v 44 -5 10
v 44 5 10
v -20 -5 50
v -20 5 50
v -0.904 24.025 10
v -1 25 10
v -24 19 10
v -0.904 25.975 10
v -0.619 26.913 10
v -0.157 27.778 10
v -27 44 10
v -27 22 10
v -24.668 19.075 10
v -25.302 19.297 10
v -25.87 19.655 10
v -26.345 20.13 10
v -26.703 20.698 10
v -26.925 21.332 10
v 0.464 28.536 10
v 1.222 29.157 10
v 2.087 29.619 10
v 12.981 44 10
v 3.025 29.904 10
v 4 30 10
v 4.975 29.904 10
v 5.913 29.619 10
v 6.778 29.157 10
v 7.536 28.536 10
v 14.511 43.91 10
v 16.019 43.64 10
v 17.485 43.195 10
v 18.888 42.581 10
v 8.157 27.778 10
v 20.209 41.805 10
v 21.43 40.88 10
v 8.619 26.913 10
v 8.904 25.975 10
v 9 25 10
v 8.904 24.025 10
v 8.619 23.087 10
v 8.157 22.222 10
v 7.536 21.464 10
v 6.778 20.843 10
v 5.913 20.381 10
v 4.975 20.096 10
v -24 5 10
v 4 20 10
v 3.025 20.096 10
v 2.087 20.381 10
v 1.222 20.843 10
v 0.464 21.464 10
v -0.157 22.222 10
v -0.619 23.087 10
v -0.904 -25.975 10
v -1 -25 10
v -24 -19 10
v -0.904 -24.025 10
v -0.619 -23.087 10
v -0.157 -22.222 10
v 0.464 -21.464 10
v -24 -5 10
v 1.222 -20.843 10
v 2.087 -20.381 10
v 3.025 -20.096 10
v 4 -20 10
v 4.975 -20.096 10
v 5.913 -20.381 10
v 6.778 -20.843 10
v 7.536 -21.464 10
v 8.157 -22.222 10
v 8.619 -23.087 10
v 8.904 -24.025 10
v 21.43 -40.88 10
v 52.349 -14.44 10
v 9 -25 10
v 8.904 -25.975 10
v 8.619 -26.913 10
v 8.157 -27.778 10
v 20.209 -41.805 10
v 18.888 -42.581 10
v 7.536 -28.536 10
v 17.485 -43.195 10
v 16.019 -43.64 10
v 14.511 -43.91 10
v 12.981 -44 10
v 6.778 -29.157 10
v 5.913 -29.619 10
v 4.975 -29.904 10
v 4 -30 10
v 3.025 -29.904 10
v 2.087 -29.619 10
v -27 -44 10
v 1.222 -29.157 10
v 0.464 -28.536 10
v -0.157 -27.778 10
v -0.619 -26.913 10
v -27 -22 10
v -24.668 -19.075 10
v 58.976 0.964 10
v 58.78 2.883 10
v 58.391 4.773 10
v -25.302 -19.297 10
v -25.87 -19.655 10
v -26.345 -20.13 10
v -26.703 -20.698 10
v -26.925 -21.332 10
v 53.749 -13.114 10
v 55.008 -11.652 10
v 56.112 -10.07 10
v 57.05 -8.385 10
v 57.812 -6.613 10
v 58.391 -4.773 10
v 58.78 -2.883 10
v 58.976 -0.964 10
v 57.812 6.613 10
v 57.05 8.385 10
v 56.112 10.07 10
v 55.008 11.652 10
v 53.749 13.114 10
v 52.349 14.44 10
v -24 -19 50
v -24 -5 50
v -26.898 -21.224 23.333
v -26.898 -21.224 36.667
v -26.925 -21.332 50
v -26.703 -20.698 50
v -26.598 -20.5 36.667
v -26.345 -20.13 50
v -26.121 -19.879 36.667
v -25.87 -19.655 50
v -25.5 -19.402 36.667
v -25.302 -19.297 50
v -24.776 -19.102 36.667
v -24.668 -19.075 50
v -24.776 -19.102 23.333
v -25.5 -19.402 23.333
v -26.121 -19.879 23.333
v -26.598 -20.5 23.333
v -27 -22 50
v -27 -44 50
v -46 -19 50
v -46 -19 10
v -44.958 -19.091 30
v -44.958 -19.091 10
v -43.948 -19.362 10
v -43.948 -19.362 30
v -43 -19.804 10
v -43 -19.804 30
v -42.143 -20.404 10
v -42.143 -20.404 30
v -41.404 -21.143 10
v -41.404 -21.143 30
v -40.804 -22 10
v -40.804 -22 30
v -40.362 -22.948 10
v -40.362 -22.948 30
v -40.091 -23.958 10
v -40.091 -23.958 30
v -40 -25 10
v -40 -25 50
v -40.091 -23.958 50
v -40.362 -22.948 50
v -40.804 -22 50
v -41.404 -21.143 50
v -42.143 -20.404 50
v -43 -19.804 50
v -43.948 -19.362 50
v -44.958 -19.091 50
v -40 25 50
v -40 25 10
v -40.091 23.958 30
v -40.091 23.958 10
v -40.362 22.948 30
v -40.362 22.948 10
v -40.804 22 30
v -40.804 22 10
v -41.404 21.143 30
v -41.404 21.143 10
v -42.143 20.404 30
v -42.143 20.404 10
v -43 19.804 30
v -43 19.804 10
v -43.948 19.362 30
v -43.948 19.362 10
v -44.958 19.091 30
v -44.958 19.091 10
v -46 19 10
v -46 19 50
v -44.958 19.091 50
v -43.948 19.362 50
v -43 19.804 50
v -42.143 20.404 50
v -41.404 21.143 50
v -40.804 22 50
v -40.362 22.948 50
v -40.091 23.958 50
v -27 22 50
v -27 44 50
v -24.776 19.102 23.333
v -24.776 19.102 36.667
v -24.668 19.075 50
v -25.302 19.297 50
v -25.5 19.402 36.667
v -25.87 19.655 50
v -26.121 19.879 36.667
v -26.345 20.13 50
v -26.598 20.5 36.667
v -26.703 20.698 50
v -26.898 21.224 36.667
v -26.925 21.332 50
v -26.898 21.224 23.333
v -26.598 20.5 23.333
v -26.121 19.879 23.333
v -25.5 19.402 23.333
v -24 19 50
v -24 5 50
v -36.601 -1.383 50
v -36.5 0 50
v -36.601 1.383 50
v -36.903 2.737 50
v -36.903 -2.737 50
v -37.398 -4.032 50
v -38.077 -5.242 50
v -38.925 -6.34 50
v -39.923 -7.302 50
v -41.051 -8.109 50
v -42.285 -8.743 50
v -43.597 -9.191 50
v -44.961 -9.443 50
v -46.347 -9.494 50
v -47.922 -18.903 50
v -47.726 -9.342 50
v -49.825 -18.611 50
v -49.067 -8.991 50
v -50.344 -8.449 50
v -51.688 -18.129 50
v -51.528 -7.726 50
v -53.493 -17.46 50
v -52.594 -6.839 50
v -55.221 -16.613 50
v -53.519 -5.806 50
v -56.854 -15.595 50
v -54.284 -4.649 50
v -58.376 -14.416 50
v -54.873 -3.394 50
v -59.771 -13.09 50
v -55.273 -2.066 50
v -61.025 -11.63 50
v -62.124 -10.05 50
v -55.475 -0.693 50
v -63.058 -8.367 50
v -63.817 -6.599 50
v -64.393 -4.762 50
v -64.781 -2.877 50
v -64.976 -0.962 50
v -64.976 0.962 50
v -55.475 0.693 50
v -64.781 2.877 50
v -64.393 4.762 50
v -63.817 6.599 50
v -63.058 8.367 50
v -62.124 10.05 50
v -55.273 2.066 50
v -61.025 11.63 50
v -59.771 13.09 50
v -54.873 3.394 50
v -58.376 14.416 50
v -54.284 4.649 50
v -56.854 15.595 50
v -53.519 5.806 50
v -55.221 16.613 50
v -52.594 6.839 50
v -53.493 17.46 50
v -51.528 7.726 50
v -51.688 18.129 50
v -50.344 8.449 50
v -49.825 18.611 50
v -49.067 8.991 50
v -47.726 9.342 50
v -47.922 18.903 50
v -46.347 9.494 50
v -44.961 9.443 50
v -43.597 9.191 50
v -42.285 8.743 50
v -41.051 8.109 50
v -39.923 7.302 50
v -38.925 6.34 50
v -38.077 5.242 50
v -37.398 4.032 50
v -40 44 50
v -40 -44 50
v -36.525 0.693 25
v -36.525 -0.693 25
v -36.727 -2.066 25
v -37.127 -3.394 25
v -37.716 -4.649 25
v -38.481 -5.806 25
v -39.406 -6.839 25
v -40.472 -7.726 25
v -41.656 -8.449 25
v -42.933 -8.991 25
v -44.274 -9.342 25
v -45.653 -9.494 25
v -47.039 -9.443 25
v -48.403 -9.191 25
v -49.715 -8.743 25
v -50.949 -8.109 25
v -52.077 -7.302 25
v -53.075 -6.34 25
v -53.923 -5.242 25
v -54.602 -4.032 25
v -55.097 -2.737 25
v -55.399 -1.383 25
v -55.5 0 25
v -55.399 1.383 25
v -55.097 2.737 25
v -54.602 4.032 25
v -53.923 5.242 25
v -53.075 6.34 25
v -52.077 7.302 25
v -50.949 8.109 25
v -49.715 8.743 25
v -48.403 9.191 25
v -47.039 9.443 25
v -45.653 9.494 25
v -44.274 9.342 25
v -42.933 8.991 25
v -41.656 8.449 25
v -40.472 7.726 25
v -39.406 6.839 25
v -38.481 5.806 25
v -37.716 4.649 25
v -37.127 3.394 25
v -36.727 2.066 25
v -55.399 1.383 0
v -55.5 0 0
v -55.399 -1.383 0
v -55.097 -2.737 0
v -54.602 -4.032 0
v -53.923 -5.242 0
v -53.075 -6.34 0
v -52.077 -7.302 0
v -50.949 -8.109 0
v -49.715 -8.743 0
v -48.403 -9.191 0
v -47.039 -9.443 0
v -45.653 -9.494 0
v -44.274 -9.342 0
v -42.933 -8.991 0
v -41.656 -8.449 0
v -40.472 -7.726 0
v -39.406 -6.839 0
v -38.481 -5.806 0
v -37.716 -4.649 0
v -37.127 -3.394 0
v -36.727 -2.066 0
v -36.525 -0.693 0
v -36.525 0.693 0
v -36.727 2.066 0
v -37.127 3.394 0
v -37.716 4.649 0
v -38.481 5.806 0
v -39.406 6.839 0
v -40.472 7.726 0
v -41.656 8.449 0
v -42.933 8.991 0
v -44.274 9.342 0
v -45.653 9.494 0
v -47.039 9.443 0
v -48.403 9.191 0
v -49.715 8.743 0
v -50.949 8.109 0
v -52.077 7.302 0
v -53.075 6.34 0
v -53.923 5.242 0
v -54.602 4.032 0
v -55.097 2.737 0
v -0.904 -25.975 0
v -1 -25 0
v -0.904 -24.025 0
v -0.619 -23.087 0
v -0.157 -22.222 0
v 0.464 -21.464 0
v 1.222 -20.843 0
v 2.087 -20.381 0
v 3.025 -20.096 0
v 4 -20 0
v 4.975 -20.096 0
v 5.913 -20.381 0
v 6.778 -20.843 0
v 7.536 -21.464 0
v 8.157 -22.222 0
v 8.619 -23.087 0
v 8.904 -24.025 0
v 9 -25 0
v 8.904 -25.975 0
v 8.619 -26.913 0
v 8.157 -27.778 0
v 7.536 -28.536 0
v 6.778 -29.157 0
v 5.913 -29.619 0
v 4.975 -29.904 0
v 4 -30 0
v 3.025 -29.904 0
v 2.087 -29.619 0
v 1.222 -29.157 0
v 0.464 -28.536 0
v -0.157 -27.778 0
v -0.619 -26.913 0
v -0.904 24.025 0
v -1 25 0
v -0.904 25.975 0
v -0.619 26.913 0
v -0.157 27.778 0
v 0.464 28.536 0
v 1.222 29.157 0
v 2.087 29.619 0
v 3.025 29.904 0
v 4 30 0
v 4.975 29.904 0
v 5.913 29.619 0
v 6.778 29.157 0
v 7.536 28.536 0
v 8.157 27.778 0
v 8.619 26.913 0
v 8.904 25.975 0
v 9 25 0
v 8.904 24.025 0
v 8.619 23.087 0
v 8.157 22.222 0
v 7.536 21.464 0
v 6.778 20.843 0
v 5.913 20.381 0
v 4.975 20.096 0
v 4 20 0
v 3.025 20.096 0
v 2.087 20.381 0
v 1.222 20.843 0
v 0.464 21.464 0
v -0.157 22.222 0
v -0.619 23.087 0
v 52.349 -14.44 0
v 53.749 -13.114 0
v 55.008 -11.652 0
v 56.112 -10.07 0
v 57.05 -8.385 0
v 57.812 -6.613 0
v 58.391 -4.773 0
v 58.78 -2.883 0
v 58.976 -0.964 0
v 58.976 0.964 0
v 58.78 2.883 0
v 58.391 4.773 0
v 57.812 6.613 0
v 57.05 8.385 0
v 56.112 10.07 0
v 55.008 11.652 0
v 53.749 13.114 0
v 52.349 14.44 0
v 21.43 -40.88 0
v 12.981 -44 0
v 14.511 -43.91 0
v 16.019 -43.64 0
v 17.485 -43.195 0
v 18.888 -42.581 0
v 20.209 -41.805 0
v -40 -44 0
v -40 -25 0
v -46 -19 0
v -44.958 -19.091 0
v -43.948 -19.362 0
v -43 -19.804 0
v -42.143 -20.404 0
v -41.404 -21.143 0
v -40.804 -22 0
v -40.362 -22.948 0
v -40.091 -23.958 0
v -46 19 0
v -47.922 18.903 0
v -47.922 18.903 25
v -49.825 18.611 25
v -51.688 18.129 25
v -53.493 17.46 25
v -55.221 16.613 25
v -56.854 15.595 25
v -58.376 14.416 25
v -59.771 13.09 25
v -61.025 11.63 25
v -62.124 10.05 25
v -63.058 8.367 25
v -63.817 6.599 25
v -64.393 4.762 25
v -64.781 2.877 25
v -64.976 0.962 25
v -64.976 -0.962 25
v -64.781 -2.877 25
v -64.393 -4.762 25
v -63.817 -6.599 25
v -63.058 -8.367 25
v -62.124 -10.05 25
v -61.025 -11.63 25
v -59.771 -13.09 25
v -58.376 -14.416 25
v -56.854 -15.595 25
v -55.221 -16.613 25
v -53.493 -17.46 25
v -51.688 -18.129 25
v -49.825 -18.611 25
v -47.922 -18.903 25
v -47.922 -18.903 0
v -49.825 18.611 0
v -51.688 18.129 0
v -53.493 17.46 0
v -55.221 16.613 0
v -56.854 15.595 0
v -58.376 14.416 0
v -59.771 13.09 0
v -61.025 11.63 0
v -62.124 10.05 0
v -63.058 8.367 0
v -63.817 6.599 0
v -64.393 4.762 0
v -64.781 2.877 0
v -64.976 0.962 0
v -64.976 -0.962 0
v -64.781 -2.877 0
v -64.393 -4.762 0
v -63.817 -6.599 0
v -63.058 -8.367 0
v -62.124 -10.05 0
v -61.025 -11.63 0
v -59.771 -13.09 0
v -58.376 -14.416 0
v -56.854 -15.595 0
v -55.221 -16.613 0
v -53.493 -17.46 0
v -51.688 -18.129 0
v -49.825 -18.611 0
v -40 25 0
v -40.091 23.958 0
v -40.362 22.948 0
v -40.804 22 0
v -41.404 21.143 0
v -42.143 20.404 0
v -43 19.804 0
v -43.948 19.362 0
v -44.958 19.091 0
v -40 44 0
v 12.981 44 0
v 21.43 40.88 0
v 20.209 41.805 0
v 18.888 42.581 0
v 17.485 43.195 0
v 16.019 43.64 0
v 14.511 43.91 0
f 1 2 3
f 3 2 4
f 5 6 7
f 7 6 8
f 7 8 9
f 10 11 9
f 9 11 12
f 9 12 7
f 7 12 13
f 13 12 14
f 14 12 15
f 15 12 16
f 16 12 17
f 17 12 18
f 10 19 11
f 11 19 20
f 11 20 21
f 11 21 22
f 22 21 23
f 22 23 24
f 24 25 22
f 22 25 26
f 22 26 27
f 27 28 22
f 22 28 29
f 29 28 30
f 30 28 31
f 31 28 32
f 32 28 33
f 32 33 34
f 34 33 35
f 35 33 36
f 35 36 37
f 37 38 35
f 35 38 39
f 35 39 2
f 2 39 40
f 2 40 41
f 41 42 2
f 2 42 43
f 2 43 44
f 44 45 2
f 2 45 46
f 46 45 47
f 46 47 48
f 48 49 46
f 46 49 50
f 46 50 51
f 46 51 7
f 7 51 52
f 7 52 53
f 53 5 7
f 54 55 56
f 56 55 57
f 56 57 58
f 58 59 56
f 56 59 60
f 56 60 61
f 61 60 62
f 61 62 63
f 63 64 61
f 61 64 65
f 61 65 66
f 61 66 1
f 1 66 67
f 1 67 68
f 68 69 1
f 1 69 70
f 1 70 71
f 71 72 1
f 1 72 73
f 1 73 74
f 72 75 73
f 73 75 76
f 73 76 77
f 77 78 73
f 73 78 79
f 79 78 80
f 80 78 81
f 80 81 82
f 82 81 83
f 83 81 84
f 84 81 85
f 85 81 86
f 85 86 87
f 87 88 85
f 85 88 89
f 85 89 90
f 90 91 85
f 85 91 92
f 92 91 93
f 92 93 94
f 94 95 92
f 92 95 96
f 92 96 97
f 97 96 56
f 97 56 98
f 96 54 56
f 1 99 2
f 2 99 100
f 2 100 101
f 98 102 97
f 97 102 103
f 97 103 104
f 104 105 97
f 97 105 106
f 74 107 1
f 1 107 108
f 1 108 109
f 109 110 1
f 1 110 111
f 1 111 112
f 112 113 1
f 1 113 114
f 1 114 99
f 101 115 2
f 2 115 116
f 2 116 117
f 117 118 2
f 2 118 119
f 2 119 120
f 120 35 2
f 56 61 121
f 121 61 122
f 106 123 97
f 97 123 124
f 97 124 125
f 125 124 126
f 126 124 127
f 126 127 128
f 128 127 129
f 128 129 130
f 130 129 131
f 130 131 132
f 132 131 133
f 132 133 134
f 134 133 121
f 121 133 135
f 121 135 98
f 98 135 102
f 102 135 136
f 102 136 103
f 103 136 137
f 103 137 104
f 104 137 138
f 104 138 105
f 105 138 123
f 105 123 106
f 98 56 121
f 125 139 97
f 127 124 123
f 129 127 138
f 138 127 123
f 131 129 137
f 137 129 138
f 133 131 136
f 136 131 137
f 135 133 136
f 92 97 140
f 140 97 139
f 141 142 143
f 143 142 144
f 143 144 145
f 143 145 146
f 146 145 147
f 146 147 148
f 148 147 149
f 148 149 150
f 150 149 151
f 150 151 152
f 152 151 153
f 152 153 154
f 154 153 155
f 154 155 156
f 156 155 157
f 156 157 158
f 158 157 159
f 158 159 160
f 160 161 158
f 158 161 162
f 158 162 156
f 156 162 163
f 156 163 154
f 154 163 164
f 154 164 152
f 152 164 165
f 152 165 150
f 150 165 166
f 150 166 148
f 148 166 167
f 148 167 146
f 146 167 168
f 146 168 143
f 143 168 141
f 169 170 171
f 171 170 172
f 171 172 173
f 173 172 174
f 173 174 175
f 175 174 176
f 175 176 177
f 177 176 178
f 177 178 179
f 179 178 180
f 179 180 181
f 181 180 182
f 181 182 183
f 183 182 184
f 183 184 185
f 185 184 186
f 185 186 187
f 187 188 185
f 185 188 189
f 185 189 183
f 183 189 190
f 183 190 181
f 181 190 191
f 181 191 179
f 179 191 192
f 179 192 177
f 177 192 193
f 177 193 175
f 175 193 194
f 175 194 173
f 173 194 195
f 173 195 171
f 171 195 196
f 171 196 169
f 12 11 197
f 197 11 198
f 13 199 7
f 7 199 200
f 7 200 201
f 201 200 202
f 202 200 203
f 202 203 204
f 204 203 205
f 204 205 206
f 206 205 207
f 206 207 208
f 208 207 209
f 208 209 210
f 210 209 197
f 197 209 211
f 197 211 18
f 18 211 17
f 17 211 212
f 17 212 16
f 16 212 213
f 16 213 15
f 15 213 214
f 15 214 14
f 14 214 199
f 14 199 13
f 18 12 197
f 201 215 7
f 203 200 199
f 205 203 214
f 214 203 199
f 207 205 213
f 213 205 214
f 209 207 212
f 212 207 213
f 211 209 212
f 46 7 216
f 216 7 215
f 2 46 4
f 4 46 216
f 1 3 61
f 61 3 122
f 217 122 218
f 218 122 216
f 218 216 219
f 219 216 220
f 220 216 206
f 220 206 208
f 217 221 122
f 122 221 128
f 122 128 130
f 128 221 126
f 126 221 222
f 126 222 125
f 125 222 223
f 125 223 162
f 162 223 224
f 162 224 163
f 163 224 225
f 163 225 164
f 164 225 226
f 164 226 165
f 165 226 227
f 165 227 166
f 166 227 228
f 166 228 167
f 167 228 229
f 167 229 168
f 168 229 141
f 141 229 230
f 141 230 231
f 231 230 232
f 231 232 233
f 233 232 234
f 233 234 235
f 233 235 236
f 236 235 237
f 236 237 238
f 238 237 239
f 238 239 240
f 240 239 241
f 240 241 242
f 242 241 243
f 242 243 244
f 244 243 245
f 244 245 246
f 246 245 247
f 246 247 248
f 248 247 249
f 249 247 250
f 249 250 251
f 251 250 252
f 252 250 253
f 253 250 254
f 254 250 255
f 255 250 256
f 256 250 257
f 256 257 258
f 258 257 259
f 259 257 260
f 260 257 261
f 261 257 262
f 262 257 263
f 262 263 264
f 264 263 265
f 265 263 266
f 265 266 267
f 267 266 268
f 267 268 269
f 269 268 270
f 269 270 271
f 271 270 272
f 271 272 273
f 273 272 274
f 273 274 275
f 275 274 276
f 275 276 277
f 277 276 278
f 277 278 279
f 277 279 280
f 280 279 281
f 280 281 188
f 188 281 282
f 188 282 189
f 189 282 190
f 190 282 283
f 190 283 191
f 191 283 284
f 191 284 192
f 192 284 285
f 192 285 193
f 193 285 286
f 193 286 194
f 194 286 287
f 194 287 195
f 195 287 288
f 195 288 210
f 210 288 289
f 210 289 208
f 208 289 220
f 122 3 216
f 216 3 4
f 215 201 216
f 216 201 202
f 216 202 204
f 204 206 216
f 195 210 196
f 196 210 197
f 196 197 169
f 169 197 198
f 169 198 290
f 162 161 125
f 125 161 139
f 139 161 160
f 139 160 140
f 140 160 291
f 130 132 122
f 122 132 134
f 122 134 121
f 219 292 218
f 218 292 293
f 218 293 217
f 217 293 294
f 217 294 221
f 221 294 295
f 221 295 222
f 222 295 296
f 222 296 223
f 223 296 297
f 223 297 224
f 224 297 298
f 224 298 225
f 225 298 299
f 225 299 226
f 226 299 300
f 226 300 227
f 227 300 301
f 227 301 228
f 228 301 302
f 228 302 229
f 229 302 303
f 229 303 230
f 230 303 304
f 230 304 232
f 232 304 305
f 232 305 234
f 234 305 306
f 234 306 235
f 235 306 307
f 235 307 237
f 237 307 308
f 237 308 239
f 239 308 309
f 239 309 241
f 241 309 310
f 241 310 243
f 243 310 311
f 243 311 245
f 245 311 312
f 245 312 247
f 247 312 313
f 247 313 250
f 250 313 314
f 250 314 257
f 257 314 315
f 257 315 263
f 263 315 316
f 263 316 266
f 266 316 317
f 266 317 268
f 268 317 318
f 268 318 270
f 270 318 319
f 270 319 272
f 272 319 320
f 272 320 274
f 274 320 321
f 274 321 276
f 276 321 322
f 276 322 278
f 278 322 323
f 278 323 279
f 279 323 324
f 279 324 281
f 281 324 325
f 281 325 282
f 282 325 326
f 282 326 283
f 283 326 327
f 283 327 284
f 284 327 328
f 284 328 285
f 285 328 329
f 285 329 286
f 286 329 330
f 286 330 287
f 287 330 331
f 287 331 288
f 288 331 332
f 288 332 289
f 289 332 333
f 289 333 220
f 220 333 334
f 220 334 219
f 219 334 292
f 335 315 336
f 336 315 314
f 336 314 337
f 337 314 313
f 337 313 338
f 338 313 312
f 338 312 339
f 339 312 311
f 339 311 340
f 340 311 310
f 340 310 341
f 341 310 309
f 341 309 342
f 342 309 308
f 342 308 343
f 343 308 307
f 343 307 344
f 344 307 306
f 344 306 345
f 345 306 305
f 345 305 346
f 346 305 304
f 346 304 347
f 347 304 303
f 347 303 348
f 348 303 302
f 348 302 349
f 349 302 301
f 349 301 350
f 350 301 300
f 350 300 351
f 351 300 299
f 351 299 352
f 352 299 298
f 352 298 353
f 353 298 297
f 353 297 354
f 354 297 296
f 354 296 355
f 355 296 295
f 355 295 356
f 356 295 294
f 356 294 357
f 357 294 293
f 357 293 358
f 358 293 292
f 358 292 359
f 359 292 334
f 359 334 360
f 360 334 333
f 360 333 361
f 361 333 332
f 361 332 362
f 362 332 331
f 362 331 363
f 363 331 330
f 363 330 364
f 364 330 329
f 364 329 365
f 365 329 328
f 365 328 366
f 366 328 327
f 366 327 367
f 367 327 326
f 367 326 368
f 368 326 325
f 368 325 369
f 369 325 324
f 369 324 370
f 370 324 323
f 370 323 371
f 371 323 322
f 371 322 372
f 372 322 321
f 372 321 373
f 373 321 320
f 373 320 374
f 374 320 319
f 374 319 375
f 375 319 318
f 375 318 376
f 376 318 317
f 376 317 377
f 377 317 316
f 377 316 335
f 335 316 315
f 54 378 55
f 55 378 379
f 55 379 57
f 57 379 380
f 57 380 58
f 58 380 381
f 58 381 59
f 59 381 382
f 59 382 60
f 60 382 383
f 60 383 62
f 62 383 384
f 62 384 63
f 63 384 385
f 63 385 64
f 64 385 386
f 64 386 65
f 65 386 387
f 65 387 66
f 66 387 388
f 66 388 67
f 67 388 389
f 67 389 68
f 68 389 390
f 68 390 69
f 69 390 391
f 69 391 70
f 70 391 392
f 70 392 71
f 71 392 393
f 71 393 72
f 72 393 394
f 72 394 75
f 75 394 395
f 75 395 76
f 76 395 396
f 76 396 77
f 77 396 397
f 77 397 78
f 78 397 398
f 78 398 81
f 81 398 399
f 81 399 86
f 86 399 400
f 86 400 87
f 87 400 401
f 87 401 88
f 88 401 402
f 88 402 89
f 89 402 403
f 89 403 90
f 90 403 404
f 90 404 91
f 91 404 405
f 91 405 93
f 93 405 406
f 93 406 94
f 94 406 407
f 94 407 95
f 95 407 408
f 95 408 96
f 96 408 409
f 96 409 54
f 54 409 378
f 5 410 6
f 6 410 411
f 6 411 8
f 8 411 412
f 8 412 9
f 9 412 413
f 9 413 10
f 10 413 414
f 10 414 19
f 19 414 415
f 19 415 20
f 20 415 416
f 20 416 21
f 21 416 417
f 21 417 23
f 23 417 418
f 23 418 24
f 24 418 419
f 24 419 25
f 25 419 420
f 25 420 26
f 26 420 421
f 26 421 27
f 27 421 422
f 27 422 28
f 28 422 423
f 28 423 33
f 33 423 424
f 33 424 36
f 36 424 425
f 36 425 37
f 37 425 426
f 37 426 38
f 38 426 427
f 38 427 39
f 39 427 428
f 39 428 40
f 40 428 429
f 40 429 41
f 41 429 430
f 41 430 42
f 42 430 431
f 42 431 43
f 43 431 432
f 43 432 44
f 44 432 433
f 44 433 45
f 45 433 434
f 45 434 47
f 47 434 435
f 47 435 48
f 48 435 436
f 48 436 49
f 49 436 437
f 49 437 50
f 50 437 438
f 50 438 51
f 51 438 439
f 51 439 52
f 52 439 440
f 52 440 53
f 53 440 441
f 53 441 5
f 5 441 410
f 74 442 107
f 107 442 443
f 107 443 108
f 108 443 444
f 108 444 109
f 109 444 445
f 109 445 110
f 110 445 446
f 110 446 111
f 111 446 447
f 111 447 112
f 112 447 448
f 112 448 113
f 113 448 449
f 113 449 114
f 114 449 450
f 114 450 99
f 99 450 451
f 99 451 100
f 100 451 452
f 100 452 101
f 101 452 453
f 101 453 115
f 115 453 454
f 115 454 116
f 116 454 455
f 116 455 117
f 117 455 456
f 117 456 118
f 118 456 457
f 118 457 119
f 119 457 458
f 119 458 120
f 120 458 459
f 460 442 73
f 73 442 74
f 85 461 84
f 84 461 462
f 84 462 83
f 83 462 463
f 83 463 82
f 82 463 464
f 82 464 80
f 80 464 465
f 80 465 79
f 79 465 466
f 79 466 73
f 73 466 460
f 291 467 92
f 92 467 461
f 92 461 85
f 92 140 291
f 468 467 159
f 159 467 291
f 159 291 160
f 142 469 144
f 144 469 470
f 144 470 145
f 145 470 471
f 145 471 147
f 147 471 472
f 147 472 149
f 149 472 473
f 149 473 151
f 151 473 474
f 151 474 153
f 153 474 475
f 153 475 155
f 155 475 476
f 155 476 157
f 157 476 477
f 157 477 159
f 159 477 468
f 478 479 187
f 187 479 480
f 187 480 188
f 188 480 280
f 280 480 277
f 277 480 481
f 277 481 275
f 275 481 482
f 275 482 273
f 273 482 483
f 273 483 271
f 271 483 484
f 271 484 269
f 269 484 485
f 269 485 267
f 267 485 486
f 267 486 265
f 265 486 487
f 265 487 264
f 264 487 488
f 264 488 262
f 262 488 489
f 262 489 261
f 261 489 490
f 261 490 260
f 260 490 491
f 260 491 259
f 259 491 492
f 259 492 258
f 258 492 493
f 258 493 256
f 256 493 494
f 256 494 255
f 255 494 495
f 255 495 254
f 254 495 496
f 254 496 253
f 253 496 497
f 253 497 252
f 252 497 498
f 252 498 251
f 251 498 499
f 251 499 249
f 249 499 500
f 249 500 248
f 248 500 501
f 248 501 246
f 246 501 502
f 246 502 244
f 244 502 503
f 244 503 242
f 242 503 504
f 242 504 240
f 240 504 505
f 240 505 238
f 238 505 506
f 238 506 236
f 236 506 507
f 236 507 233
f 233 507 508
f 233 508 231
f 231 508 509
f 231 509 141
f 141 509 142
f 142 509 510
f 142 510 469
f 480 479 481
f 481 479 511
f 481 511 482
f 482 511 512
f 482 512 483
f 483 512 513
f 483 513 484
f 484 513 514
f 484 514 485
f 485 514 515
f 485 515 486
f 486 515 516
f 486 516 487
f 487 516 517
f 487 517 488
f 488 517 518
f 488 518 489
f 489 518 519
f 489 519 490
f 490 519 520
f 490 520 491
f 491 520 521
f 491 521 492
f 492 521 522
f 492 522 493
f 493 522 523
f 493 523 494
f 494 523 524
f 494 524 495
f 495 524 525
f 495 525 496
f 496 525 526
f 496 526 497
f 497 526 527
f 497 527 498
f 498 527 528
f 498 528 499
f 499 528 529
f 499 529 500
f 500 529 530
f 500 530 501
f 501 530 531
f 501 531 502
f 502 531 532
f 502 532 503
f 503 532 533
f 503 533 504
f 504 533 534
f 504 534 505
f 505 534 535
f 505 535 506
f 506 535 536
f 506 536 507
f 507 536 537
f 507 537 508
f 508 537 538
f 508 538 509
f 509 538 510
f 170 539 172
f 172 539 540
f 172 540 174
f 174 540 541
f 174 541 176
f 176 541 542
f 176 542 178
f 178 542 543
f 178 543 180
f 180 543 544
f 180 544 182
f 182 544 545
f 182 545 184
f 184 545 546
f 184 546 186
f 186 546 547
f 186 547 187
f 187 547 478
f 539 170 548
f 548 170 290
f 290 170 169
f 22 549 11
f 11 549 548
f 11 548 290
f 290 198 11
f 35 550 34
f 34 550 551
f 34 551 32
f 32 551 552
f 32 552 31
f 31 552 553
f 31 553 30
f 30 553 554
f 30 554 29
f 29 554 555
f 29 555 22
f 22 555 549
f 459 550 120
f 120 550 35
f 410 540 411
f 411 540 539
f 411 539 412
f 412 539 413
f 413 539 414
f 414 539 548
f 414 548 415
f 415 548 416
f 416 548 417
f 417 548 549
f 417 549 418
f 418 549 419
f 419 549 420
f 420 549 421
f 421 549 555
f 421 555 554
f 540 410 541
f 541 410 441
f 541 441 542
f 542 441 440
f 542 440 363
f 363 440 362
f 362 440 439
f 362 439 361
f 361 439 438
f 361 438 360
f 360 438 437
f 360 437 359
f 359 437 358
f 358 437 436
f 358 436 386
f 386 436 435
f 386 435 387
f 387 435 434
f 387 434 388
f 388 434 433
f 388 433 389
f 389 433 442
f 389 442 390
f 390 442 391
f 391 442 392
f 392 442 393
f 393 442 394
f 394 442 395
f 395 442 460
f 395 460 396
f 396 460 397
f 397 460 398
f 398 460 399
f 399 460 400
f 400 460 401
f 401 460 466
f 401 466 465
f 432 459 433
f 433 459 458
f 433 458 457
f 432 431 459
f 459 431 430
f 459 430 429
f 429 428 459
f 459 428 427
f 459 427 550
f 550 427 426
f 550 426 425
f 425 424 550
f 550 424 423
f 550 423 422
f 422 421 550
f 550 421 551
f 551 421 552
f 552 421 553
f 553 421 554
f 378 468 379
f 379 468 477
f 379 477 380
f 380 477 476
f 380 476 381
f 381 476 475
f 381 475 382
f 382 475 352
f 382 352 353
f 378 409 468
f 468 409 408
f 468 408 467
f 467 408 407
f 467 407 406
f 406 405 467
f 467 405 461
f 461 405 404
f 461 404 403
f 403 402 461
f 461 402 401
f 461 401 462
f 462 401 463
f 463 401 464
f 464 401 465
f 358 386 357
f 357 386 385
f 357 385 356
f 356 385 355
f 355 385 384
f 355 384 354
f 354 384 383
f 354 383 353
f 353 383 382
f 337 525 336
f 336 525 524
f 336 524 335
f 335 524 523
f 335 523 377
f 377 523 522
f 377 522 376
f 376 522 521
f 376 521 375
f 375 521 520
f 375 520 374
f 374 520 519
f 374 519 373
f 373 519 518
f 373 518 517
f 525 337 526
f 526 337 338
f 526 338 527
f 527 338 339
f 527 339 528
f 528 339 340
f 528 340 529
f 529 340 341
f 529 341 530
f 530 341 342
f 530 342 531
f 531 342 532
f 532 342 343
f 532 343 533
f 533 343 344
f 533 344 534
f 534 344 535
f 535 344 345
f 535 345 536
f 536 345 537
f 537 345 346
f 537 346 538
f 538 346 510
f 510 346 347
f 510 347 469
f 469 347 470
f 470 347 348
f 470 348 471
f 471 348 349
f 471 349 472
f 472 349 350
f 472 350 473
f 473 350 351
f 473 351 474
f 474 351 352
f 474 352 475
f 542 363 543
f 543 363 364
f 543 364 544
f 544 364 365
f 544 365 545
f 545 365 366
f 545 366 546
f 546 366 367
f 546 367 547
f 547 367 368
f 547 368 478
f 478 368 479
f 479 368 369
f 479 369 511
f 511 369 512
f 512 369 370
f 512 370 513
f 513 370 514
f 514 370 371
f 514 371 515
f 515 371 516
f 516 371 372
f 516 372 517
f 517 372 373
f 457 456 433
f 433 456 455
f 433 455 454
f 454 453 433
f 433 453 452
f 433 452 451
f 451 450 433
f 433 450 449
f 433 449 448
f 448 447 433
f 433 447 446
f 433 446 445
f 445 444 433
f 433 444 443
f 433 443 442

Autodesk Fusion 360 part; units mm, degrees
sketch "Sketch1" plane through (0, 0, 0) normal (0, 0, 1) x (1, 0, 0)
  line L0 (12.9814, 44) -> (-40, 44)
  line L1 (-40, -44) -> (12.9814, -44)
  circle A0 centre (4, -25) radius 5
  circle A1 centre (4, 25) radius 5
  line L2 (40, -25) -> (52.3485, -14.44)
  line L3 (40, 25) -> (52.3485, 14.44)
  line L4 (40, 25) -> (21.4304, 40.88)
  line L5 (40, -25) -> (21.4304, -40.88)
  circle A2 centre (-46, 0) radius 9.5
  arc A3 (-40, -25) -> (-46, -19) centre (-46, -25) ccw
  arc A4 (52.3485, -14.44) -> (52.3485, 14.44) centre (40, 0) ccw
  arc A5 (12.9814, -44) -> (21.4304, -40.88) centre (12.9814, -31) ccw
  line L6 (-40, -25) -> (-40, -44)
  arc A6 (-46, 19) -> (-46, -19) centre (-46, 0) ccw
  line L7 (-40, 44) -> (-40, 25)
  line L8 (-40, 19) -> (-40, 18.0278)
  arc A7 (-46, 19) -> (-40, 25) centre (-46, 25) ccw
  arc A8 (21.4304, 40.88) -> (12.9814, 44) centre (12.9814, 31) ccw
  line L9 (-40, 0) -> (-36.5, 0) construction
  line L10 (0, 0) -> (4, 0) construction
  line L11 (4, 20) -> (4, 19) construction
  line L12 (20.8025, 19) -> (-35, 19) construction
  line L13 (-35, -19) -> (20, -19) construction
  line L14 (-20, -5) -> (-20, 5)
  line L15 (-24, 5) -> (-20, 5)
  line L16 (-24, -5) -> (-20, -5)
  line L17 (-24, 19) -> (-24, 5)
  line L18 (-24, -5) -> (-24, -19)
  arc A9 (-24, -19) -> (-27, -22) centre (-24, -22) ccw
  arc A10 (-27, 22) -> (-24, 19) centre (-24, 22) ccw
  line L19 (-27, 44) -> (-27, 22)
  line L20 (-27, -22) -> (-27, -44)
  line L21 (-40, 44) -> (-27, 44)
  line L22 (-40, -44) -> (-27, -44)
  line L23 (-70, 0) -> (52.6501, 0) construction
  dimension "d2" = 88
  dimension "d3" = 19
  dimension "d8" = 10
  dimension "d9" = 10
  dimension "d13" = 19
  dimension "d14" = 19
  dimension "d15" = 6
  dimension "d16" = 6
  dimension "d19" = 13
  dimension "d20" = 16
  dimension "d21" = 19
  dimension "d22" = 19
  dimension "d23" = 3
  dimension "d24" = 3
  dimension "d25" = 20
  dimension "d26" = 5
  dimension "d27" = 5
  dimension "d46" = 44
  dimension "d47" = 44
extrude "Extrude1" add sketch "Sketch1" along normal blind 10
sketch "Sketch2" plane through (0, 0, 10) normal (0, 0, 1) x (-1, 0, 0)
  circle A0 centre (-4, -25) radius 5
  circle A1 centre (-4, 25) radius 5
  circle A2 centre (46, 0) radius 9.5
  line L0 (-52.3485, -14.44) -> (-21.4304, -40.88)
  arc A3 (-21.4304, -40.88) -> (-12.9814, -44) centre (-12.9814, -31) ccw
  line L1 (-12.9814, -44) -> (40, -44)
  line L2 (40, -44) -> (40, -25)
  arc A4 (46, -19) -> (40, -25) centre (46, -25) ccw
  arc A5 (46, -19) -> (46, 19) centre (46, 0) ccw
  arc A6 (40, 25) -> (46, 19) centre (46, 25) ccw
  line L3 (40, 25) -> (40, 44)
  line L4 (40, 44) -> (-12.9814, 44)
  arc A7 (-12.9814, 44) -> (-21.4304, 40.88) centre (-12.9814, 31) ccw
  line L5 (-21.4304, 40.88) -> (-52.3485, 14.44)
  arc A8 (-52.3485, 14.44) -> (-52.3485, -14.44) centre (-40, 0) ccw
  line L6 (40, -44) -> (27, -44)
  line L7 (24, -19) -> (24, -5)
  line L8 (20, -5) -> (20, 5)
  line L9 (24, 5) -> (24, 19)
  circle A9 centre (46, 0) radius 9.5
  line L10 (40, 44) -> (27, 44)
  line L11 (40, 44) -> (40, 25)
  line L12 (40, -44) -> (40, -25)
  arc A10 (40, 25) -> (46, 19) centre (46, 25) ccw
  arc A11 (46, -19) -> (46, 19) centre (46, 0) ccw
  line L13 (40, -44) -> (40, -25) construction
  line L14 (40, 25) -> (40, 44) construction
  arc A12 (24, 19) -> (27, 22) centre (24, 22) ccw
  arc A13 (46, -19) -> (40, -25) centre (46, -25) ccw
  arc A14 (27, -22) -> (24, -19) centre (24, -22) ccw
  line L15 (24, 5) -> (20, 5)
  line L16 (24, -5) -> (20, -5)
  line L17 (27, -44) -> (27, -22) construction
  line L18 (27, 22) -> (27, 44) construction
  line L19 (27, -44) -> (27, -22)
  line L20 (27, 22) -> (27, 44)
  dimension "d28" = 13
  dimension "d35" = 3
  dimension "d36" = 3
  dimension "d37" = 19
  dimension "d39" = 6
  dimension "d40" = 6
extrude "Extrude2" add sketch "Sketch2" along normal blind 40 contours L1 L2 A4 A5 A6 L3 L4 L6 L7 L8 L9 L10 L11 L12 A10 A11 A12 A13 A14 L15 L16 L19 L20
sketch "Sketch3" plane through (0, 0, 0) normal (0, 1, 0) x (1, 0, 0)
  line L0 (-20, -50) -> (-20, -10)
  line L1 (-20, -10) -> (44, -10)
  line L2 (44, -10) -> (-20, -50)
  dimension "d43" = 64
extrude "Extrude3" add sketch "Sketch3" along normal mid plane 10
equation "d20 = 13 mm + 3 mm"
equation "d43 = 67 mm - 3 mm"
